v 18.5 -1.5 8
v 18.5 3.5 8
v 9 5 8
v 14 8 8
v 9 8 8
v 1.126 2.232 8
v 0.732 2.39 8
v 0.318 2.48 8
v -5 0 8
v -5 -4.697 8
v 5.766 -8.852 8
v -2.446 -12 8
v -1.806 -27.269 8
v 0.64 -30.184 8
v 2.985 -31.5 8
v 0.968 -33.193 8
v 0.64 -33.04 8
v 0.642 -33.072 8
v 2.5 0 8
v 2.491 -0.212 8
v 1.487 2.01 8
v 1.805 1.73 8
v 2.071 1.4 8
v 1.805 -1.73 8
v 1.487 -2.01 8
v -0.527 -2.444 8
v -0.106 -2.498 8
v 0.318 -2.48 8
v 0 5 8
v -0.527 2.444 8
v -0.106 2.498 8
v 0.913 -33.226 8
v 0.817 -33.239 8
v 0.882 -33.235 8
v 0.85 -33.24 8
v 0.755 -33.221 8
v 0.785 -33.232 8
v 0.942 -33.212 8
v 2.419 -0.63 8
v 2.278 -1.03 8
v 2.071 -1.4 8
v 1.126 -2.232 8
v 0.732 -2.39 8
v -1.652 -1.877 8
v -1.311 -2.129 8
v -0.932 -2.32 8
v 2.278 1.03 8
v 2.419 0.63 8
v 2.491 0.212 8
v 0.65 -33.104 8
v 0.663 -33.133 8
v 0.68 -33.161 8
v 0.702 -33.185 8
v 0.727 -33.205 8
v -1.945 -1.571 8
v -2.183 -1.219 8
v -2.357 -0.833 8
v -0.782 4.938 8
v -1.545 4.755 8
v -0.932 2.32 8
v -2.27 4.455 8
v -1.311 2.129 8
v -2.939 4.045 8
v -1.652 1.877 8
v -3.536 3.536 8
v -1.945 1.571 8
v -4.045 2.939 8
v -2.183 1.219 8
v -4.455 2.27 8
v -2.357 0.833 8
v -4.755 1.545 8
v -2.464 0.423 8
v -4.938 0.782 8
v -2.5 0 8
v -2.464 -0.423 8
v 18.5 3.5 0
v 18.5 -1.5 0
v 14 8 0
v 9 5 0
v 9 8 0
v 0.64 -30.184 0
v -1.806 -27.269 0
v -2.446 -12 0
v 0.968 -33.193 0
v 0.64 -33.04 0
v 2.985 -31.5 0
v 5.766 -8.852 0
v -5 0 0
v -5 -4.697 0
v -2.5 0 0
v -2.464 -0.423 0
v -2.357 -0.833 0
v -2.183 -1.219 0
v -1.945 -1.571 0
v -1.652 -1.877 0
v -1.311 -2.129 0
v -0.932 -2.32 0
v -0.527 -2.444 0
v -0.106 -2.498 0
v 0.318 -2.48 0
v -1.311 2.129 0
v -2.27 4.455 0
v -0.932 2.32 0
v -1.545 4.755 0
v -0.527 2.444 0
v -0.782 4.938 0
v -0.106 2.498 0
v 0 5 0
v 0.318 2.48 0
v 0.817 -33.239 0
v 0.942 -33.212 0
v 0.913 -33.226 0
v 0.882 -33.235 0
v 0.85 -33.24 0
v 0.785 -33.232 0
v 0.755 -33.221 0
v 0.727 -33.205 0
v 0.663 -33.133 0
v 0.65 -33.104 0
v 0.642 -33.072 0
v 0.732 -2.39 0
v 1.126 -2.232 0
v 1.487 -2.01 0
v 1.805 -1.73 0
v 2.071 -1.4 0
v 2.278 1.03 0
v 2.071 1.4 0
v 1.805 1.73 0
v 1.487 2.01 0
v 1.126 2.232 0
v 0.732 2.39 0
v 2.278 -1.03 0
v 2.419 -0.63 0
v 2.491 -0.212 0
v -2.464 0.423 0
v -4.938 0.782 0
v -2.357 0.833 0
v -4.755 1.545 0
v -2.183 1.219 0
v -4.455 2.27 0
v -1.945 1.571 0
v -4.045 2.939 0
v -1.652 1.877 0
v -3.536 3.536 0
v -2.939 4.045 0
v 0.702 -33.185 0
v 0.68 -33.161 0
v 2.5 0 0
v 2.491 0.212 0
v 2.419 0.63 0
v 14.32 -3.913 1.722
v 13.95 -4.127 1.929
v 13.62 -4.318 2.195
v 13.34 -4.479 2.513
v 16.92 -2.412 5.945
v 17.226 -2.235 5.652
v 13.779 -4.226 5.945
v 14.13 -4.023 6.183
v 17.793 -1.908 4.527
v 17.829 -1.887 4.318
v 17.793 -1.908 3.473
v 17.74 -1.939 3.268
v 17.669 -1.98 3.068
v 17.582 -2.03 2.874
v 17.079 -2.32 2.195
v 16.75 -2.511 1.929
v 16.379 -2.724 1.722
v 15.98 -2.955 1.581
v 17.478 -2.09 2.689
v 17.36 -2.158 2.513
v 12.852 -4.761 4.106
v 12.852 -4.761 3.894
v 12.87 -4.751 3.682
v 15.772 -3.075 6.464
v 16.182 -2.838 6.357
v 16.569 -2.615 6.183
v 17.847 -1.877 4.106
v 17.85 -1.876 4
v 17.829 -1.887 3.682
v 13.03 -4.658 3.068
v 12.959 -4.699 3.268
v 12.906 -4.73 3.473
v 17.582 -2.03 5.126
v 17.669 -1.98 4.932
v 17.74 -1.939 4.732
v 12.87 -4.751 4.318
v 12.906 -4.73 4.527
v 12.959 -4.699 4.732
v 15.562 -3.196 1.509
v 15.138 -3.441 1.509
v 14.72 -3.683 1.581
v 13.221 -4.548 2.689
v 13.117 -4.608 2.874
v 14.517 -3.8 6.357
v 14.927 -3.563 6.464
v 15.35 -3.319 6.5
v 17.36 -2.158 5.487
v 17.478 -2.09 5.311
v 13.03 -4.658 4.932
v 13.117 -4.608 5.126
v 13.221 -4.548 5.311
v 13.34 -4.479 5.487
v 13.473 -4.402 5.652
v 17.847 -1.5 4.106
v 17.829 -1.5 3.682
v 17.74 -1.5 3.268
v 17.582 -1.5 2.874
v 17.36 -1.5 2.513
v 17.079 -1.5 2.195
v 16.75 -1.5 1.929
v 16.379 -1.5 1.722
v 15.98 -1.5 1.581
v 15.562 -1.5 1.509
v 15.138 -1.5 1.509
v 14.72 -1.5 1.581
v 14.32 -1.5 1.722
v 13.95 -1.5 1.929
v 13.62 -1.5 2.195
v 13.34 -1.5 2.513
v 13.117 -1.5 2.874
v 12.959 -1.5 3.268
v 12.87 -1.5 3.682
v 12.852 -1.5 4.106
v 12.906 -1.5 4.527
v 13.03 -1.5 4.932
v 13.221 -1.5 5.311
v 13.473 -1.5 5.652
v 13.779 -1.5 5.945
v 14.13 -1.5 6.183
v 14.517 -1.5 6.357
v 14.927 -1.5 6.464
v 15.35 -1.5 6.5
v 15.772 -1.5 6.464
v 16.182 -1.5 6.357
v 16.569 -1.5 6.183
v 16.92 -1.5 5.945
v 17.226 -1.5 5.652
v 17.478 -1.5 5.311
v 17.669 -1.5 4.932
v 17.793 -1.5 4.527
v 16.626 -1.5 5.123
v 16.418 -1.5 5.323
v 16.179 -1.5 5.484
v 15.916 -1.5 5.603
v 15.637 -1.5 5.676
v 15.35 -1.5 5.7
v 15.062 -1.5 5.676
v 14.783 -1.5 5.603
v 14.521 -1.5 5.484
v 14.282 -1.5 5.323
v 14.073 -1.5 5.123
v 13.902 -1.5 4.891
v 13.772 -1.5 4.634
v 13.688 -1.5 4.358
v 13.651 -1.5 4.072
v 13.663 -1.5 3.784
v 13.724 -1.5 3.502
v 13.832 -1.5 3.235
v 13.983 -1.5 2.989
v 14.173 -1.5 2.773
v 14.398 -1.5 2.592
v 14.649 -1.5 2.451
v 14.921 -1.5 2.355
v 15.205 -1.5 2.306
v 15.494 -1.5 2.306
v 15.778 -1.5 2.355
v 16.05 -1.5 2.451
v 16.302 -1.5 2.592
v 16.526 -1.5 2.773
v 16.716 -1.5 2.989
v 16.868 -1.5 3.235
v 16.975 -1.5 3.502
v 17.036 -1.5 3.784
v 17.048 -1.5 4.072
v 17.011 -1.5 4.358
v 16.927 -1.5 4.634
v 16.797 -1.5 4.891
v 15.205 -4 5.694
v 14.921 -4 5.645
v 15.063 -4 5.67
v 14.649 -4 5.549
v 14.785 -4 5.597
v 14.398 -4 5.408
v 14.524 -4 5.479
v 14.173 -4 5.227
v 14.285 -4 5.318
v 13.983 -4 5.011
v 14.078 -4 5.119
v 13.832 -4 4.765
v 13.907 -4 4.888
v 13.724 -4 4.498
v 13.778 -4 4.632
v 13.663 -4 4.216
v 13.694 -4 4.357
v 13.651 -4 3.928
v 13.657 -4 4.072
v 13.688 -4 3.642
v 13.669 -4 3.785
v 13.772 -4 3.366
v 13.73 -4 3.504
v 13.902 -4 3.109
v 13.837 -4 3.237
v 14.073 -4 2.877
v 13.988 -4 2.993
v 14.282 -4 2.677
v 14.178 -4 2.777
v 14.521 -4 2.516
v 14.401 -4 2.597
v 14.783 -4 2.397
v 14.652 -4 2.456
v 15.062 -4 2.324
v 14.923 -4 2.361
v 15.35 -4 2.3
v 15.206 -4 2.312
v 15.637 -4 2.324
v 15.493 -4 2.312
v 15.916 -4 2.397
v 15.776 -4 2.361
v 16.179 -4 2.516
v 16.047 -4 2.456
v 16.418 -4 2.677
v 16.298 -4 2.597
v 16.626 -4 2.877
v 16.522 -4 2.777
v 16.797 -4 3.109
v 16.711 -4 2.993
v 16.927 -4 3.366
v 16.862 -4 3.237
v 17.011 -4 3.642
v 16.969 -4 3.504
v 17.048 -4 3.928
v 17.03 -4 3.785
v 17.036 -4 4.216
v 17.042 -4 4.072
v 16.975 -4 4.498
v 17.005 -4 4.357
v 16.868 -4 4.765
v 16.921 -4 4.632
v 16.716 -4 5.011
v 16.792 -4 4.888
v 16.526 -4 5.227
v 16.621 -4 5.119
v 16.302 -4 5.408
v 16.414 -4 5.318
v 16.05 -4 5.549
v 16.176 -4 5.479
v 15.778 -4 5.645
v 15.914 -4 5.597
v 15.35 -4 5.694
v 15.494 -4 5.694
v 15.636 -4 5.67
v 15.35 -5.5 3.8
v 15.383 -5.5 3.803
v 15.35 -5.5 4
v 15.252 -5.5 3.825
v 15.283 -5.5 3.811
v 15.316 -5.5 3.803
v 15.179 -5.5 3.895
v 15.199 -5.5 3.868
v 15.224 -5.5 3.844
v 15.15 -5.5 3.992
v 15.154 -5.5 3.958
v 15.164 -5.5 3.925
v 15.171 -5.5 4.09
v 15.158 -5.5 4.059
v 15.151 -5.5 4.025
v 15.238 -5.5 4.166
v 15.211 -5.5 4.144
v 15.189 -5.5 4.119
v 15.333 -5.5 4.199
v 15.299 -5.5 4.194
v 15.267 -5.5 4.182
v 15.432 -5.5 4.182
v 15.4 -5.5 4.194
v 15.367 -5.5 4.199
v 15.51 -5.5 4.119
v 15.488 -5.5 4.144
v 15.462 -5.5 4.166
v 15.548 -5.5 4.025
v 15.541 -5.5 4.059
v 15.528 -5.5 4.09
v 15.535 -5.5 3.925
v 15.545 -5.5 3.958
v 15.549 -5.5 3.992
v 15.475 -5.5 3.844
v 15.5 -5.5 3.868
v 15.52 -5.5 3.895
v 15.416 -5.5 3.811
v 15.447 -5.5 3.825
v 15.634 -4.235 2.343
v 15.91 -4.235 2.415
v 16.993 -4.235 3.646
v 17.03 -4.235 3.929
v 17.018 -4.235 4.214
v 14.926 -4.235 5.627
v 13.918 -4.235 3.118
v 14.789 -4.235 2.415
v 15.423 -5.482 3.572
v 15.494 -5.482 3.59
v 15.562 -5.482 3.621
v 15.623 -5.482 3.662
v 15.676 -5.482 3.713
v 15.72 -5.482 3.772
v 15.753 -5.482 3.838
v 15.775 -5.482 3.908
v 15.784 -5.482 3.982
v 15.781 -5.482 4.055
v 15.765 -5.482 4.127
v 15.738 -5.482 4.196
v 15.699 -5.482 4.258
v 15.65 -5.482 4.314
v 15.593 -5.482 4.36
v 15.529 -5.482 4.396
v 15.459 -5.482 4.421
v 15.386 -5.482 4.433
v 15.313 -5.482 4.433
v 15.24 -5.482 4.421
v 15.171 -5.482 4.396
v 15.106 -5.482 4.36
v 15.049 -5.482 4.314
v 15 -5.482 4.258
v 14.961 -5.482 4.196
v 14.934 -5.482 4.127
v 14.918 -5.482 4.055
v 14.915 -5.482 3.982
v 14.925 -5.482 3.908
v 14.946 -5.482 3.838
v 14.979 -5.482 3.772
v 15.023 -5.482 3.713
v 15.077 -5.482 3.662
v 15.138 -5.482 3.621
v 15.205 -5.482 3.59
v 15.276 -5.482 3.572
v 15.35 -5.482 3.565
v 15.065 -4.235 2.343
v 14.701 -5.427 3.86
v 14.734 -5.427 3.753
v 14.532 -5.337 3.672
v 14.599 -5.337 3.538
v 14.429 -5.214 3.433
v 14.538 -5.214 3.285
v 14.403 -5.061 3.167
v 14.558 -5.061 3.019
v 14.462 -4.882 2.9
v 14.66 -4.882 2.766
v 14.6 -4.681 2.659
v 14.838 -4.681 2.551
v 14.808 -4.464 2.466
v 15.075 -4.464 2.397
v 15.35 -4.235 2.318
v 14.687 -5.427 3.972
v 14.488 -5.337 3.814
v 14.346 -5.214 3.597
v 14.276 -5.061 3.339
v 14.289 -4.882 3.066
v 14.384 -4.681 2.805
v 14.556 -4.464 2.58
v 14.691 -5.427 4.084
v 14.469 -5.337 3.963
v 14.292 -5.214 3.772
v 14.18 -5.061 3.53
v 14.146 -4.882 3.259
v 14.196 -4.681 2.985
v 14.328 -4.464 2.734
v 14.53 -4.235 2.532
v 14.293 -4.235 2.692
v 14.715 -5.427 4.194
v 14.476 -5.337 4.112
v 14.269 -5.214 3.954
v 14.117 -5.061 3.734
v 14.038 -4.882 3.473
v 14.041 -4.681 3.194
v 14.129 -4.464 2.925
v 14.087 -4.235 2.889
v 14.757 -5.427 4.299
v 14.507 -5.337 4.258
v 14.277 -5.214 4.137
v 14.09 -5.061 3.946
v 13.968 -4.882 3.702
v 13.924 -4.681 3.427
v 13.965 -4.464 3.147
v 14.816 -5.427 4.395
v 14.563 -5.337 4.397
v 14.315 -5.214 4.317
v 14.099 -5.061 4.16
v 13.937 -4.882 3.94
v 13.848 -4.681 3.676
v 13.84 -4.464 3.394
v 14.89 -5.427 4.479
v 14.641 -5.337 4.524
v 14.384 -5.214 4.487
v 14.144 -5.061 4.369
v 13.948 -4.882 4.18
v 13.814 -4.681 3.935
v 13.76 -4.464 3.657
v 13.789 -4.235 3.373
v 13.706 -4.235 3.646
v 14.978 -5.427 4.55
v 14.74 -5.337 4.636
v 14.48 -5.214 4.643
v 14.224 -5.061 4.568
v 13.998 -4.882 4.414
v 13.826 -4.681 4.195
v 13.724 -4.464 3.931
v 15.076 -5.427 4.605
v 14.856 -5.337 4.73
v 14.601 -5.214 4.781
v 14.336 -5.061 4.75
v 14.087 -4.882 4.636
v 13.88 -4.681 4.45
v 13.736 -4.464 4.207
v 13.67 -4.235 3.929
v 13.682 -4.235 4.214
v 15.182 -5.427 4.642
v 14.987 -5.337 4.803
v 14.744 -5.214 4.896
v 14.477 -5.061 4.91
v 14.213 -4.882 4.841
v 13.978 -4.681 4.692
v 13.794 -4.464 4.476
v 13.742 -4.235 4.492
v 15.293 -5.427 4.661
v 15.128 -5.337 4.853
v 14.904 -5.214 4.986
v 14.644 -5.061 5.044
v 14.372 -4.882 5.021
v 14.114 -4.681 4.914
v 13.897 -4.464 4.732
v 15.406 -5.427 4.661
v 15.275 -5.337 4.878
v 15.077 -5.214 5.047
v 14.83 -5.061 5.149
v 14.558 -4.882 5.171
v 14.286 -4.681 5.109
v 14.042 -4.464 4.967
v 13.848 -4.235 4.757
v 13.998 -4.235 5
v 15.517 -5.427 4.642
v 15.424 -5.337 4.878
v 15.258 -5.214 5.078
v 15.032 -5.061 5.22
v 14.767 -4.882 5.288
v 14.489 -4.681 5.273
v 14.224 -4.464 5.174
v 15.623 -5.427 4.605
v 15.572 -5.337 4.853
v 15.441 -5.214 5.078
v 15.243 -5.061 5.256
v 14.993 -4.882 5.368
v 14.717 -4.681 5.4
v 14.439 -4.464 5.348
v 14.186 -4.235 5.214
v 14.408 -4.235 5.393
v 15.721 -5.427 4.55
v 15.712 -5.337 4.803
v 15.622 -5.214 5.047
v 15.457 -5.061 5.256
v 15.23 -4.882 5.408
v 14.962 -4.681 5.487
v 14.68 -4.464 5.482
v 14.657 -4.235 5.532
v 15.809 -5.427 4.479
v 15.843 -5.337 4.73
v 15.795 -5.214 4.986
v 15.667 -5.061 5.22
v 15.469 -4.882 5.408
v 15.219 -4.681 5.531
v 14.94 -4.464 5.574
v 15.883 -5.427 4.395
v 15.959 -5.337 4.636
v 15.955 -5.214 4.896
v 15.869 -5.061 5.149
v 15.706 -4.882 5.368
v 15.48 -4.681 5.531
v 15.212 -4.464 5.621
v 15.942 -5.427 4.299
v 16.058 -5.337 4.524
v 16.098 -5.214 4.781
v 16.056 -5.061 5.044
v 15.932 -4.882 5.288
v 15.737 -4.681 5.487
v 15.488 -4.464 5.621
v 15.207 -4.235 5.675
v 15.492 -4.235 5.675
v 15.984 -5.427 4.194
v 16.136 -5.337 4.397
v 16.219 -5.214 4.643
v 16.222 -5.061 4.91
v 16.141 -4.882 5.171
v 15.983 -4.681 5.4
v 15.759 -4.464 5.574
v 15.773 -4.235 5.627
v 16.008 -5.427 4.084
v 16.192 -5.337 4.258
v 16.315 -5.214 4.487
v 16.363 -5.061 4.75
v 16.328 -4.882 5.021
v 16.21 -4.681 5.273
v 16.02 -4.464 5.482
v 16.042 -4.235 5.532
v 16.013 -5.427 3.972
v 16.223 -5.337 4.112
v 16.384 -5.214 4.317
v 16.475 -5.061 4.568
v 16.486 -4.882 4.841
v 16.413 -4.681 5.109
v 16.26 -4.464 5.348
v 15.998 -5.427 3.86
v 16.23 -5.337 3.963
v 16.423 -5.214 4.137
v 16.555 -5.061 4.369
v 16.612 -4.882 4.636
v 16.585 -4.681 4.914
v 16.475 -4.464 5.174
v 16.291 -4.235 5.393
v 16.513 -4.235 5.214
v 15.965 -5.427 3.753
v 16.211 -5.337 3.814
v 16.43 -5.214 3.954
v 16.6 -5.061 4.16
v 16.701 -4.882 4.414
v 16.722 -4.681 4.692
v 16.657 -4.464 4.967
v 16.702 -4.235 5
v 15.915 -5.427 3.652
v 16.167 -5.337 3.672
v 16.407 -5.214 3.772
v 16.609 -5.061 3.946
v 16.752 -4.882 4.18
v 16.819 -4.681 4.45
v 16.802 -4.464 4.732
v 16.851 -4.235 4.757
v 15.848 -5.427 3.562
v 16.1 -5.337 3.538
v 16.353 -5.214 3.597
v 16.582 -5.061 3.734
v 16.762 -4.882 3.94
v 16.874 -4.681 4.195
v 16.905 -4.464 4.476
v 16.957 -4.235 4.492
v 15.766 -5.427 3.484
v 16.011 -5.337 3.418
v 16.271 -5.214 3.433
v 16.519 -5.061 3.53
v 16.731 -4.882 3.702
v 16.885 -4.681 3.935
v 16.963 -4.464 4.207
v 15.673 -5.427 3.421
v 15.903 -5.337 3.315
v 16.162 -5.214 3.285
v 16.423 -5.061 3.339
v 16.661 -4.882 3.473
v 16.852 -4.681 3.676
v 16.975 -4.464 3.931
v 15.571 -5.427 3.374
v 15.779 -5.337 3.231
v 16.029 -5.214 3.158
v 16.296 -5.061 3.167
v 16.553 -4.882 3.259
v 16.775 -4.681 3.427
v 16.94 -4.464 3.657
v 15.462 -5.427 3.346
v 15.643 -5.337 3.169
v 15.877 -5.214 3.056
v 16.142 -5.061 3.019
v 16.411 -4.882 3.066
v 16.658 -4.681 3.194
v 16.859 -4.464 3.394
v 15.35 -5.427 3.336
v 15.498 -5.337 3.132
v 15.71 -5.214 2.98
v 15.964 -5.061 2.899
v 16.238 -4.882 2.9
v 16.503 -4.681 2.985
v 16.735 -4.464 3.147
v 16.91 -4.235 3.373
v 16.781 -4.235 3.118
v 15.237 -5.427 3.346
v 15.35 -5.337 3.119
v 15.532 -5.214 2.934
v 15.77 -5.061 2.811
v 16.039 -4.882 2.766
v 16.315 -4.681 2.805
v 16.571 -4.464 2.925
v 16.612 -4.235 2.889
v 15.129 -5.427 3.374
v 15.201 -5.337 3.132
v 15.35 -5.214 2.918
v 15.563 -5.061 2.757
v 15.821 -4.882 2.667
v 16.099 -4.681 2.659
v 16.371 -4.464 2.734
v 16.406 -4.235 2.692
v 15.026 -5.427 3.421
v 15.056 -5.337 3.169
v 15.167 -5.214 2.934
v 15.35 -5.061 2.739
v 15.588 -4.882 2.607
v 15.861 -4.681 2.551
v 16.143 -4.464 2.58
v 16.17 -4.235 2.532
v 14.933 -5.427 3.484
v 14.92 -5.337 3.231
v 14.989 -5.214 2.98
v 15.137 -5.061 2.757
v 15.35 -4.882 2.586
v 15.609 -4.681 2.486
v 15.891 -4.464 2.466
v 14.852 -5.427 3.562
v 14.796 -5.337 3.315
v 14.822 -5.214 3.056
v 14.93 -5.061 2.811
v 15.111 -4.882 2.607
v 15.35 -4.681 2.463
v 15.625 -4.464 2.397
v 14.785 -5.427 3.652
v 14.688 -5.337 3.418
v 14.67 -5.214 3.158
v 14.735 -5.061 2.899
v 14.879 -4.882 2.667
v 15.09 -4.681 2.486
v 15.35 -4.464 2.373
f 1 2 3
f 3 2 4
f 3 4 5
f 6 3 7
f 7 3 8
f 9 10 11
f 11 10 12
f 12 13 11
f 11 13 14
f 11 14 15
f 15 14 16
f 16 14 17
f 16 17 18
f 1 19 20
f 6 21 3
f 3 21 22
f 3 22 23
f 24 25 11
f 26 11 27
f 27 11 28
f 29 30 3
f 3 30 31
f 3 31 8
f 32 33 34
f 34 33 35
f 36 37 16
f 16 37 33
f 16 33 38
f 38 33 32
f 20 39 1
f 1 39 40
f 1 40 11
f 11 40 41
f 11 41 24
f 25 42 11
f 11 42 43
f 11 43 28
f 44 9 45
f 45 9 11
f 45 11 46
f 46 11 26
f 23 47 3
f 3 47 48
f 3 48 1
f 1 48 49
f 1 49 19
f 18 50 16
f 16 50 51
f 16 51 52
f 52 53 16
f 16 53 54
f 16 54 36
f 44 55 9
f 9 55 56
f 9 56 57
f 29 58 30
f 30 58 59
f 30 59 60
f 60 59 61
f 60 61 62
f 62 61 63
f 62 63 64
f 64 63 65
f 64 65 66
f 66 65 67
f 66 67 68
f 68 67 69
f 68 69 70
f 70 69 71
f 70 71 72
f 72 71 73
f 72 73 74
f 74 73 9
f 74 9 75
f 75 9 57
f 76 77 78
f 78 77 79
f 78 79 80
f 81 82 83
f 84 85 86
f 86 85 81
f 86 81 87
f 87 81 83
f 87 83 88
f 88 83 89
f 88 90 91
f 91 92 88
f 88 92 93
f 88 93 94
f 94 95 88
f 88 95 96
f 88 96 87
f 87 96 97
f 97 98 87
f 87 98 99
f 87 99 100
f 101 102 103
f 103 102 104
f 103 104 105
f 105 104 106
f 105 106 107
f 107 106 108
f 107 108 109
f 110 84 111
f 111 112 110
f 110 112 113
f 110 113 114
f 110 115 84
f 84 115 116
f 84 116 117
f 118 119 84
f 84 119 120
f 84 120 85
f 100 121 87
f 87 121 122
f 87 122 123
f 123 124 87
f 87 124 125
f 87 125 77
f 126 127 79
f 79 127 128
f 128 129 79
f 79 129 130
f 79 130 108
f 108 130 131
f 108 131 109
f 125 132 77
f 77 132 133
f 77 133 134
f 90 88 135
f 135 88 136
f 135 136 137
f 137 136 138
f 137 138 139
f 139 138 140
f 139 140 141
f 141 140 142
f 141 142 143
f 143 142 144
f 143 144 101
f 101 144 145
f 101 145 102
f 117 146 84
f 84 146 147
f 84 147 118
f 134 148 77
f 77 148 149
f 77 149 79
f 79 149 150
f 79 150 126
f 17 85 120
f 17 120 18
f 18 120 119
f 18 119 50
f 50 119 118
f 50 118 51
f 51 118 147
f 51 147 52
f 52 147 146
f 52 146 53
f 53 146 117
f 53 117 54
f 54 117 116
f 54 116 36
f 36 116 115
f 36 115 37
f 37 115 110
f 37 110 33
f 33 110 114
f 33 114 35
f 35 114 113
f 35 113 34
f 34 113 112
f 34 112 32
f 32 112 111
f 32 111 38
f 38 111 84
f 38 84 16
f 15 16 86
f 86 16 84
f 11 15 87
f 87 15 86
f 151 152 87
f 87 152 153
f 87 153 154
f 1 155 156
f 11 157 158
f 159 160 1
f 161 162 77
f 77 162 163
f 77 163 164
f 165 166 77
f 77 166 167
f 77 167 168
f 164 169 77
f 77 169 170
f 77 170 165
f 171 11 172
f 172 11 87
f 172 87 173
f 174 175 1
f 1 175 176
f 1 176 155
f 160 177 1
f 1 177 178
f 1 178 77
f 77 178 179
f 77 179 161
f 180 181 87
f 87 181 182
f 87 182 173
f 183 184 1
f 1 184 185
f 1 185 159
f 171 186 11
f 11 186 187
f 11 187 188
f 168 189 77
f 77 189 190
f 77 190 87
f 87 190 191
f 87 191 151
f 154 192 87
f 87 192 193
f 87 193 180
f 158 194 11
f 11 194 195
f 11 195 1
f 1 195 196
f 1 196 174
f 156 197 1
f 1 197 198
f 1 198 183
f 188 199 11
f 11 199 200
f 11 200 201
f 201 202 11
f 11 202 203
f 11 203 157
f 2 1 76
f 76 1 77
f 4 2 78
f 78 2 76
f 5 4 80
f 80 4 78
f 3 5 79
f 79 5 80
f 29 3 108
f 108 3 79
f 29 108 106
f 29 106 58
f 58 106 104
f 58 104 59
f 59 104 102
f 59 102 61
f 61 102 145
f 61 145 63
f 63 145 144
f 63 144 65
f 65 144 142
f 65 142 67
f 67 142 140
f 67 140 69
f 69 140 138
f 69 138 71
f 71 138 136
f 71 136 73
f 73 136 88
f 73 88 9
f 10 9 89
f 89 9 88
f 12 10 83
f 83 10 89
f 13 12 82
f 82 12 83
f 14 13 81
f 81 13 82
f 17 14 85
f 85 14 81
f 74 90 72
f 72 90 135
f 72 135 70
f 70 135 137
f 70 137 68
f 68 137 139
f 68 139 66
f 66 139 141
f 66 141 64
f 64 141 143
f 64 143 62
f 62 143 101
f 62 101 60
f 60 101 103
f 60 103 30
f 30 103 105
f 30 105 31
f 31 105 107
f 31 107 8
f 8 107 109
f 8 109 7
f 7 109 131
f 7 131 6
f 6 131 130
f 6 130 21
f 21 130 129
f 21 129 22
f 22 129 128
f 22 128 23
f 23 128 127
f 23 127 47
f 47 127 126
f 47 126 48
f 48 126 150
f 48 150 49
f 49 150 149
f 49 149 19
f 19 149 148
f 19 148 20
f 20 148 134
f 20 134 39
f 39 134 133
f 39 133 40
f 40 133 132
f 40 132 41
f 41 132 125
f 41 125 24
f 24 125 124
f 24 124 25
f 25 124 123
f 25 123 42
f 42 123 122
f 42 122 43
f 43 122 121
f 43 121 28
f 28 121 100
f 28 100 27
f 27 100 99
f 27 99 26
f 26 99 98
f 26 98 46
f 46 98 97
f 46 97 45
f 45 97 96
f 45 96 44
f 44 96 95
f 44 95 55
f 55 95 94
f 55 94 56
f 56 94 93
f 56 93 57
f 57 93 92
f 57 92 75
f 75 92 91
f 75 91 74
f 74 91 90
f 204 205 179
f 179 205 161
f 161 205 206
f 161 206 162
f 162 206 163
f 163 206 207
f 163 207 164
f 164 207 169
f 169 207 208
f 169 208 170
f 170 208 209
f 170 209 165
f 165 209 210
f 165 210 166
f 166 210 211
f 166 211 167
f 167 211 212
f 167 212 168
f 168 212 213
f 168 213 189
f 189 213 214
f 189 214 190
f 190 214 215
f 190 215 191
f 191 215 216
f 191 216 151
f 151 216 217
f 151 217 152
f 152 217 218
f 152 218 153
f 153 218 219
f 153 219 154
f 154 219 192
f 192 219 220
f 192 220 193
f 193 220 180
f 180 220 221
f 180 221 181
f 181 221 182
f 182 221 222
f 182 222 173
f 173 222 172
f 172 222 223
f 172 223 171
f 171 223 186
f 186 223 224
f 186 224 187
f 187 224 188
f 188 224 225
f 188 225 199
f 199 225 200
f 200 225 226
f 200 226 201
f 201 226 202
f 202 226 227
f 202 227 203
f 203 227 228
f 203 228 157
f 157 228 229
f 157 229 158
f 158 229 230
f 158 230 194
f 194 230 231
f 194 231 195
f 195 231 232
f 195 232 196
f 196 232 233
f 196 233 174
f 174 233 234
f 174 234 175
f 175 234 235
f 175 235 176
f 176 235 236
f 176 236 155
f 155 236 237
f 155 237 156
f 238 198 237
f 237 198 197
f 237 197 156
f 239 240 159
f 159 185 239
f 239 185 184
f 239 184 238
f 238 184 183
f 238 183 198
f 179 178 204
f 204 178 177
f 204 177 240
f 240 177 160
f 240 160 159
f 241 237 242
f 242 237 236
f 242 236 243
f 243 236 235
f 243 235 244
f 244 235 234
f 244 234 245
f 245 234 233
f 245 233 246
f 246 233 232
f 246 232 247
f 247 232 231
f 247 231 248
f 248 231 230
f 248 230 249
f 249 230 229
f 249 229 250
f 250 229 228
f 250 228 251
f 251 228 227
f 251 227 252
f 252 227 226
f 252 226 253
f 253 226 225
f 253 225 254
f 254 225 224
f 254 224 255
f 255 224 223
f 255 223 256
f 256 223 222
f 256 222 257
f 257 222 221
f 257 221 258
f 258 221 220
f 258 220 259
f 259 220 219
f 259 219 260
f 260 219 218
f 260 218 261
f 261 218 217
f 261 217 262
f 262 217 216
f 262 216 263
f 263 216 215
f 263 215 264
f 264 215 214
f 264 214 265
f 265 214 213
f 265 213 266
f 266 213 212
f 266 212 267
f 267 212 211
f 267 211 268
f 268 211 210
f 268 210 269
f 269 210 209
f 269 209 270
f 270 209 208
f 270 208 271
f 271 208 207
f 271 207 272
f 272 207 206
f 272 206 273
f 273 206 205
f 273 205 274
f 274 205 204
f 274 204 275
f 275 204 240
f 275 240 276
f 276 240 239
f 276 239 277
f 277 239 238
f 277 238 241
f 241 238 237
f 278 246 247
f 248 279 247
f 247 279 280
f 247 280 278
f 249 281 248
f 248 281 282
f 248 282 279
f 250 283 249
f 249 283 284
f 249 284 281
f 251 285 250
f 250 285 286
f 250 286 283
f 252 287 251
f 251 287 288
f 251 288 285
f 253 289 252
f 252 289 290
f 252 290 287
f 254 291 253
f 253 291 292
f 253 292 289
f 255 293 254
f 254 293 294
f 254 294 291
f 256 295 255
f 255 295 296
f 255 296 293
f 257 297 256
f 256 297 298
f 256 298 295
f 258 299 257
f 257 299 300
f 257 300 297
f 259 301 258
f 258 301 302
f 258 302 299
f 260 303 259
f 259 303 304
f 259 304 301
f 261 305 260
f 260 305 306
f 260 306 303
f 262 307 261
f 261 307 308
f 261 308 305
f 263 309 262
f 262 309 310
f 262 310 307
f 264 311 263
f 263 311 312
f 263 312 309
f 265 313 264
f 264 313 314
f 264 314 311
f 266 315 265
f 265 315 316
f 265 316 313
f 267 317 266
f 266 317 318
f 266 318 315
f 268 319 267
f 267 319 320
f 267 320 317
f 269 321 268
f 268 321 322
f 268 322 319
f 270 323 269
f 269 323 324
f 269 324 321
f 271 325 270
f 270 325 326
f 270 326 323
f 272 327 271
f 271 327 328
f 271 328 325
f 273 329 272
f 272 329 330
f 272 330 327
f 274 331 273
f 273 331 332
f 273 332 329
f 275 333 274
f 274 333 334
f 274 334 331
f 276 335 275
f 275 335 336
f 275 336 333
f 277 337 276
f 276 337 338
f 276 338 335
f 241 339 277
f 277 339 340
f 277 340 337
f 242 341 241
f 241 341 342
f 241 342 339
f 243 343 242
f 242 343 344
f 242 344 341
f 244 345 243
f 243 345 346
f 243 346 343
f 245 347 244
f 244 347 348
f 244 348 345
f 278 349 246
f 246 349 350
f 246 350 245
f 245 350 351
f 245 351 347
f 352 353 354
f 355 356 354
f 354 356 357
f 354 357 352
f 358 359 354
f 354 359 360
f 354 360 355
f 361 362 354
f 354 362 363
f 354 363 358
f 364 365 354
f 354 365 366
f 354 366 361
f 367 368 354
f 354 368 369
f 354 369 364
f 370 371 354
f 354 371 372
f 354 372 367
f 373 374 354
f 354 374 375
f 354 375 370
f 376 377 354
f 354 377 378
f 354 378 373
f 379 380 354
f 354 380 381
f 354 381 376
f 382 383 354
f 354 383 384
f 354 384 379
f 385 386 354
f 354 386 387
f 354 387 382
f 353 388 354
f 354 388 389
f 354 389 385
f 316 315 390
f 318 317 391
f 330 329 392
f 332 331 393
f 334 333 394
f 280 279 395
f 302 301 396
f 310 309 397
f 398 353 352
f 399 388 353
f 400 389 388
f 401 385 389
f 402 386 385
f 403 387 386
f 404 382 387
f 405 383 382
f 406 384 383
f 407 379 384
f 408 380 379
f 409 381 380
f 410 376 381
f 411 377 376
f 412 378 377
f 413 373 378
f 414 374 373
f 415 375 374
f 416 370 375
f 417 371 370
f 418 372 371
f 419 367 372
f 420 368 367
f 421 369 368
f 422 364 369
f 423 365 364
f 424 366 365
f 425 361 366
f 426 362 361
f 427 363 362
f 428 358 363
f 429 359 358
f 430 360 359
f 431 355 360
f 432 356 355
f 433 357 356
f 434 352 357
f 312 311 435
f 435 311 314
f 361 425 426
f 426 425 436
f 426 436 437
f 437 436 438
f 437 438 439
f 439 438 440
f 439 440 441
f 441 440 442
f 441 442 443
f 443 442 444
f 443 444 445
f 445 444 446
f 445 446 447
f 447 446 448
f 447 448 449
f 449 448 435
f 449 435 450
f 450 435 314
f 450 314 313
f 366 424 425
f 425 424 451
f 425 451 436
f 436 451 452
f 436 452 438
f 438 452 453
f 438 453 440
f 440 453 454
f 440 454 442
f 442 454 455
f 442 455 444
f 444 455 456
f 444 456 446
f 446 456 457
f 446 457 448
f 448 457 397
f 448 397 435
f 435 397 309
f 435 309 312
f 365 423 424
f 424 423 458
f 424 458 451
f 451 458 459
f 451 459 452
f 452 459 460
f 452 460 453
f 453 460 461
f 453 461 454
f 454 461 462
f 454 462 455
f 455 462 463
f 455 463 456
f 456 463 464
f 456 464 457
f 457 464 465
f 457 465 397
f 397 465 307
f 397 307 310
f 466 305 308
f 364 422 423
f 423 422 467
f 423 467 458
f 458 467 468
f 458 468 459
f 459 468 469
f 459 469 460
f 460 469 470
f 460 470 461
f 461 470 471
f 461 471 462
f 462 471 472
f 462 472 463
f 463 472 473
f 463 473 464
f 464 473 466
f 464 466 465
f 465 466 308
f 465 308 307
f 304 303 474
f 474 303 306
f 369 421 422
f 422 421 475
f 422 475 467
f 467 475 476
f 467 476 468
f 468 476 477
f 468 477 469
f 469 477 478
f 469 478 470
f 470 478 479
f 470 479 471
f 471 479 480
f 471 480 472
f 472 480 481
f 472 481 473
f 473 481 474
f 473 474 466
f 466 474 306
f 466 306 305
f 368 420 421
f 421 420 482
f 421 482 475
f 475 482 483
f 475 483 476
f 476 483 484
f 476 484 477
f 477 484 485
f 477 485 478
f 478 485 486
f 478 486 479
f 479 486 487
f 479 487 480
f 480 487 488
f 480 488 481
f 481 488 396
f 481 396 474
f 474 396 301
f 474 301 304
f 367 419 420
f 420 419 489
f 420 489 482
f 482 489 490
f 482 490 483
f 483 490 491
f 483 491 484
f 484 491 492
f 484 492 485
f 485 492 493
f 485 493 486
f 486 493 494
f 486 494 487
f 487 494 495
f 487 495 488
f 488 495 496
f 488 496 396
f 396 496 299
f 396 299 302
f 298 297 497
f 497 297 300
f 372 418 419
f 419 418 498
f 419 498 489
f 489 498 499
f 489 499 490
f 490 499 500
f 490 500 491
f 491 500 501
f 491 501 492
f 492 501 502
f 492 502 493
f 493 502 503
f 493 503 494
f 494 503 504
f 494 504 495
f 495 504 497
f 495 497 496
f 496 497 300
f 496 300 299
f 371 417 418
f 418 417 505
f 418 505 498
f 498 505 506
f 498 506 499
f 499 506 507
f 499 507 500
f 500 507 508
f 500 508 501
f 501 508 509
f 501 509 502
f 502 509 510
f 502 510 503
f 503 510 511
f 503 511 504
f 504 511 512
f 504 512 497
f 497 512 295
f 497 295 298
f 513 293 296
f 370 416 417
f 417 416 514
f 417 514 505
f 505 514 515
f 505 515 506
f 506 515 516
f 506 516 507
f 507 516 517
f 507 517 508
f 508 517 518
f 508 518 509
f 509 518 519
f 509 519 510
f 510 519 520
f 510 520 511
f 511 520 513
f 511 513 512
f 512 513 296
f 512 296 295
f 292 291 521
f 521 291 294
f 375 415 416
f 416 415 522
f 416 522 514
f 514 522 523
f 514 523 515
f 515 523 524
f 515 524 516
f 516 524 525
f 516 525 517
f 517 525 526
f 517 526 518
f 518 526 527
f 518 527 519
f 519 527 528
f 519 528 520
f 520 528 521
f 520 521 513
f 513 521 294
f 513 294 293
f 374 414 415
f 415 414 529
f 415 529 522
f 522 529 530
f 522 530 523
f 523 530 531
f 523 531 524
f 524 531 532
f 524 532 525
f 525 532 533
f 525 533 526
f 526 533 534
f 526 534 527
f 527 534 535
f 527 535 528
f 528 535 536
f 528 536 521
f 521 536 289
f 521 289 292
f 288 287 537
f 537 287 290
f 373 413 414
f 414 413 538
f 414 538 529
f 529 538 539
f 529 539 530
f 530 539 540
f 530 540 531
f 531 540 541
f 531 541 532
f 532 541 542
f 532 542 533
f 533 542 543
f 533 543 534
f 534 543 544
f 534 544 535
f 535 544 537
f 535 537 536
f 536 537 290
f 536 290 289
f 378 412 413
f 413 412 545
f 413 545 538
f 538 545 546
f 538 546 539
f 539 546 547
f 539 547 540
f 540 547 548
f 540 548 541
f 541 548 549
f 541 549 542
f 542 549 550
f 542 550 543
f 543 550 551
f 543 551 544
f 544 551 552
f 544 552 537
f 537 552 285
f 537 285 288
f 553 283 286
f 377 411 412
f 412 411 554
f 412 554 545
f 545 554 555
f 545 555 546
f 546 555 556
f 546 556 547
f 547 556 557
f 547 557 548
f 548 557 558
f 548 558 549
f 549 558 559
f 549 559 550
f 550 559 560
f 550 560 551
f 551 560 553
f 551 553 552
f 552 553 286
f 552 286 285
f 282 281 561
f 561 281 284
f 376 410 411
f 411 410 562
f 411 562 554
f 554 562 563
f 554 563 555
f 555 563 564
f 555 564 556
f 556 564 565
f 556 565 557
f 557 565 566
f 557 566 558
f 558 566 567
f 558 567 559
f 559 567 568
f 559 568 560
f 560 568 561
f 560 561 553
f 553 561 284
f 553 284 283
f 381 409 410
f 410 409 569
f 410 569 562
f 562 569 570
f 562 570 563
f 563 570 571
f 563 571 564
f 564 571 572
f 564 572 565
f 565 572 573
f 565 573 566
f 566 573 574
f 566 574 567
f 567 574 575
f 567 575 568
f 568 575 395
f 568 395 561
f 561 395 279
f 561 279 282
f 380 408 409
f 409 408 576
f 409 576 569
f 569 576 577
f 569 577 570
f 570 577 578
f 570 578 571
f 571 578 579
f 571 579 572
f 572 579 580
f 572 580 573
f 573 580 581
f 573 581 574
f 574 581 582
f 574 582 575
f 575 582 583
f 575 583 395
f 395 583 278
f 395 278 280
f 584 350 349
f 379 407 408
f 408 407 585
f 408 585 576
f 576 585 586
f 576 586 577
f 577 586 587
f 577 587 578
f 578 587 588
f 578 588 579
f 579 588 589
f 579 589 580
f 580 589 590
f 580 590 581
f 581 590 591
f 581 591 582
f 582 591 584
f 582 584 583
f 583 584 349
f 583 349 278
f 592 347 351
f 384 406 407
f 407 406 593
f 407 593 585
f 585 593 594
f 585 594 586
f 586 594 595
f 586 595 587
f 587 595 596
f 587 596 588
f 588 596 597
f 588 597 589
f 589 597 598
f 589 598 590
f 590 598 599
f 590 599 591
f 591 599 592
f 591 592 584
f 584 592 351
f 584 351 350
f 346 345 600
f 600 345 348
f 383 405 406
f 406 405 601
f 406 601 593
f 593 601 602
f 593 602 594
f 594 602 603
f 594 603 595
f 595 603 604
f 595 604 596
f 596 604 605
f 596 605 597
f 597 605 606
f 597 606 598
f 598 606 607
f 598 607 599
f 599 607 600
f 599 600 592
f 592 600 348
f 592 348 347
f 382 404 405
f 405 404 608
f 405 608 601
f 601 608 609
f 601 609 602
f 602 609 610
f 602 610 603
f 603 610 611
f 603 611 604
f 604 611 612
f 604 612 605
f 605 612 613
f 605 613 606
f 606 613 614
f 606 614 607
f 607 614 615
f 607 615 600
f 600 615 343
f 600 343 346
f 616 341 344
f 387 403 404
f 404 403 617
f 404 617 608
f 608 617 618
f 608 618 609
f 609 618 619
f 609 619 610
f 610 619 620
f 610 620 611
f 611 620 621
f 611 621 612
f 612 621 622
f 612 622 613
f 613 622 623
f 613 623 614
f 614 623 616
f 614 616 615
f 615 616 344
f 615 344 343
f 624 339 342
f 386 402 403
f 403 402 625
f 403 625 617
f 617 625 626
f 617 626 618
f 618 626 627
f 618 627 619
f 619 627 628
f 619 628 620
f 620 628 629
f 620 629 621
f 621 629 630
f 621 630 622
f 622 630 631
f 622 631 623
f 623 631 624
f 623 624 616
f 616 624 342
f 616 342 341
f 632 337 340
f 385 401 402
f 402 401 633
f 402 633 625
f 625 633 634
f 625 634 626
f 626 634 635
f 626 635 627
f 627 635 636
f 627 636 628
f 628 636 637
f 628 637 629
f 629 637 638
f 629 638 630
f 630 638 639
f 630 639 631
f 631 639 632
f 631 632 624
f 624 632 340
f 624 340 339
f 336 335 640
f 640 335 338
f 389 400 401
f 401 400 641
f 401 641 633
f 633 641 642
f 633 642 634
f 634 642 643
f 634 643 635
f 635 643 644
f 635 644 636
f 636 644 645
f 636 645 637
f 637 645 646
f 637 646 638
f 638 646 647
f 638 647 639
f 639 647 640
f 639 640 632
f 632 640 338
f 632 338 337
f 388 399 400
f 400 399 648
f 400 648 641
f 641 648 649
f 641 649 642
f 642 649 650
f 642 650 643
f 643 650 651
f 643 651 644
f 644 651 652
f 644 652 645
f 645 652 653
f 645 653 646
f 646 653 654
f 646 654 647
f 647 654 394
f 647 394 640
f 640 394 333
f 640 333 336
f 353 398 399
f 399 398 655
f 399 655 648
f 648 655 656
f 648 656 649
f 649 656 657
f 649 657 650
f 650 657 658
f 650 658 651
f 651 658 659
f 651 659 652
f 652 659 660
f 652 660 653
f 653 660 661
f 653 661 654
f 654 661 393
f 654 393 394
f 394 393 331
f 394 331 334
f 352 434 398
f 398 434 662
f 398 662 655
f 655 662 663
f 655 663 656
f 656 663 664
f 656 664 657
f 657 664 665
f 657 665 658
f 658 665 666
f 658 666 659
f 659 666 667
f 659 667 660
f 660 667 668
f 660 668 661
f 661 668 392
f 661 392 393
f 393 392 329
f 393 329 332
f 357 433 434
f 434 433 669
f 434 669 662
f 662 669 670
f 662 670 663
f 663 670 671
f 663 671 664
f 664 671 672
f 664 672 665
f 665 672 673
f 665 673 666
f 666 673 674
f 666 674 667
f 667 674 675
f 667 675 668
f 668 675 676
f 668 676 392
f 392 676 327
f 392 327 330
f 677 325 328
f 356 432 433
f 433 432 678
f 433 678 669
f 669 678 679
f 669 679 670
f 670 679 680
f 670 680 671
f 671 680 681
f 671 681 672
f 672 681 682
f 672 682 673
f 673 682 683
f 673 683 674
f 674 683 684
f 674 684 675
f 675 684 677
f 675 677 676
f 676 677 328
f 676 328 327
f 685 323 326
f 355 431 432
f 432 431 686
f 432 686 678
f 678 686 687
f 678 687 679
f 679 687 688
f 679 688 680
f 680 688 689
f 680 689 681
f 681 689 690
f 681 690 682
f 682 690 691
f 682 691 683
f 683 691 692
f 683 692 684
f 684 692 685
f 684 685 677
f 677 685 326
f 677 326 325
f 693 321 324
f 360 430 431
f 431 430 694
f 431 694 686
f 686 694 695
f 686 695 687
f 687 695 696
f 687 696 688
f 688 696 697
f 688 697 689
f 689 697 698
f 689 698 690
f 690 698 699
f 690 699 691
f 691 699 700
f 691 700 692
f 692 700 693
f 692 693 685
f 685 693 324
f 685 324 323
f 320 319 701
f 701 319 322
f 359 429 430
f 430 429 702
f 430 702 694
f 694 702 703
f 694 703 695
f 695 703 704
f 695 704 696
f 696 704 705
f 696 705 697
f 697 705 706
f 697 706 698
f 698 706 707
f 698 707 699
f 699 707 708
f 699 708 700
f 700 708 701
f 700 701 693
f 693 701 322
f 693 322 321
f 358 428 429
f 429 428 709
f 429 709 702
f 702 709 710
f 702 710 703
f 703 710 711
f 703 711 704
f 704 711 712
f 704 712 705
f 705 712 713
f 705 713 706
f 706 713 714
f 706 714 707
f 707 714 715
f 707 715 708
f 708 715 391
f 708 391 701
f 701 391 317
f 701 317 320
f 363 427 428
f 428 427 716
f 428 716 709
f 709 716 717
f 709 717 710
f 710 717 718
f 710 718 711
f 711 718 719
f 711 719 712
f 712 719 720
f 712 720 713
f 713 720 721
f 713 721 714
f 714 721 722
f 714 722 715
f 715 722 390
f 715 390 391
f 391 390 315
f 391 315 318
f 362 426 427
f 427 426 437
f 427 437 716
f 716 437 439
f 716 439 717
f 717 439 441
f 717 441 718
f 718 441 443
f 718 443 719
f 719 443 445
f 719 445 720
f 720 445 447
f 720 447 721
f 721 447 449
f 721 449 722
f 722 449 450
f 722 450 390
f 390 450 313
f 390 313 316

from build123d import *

# Parameters (mm, degrees)
SKETCH_1_R          = 2.5
EXTRUDE_1_DEPTH     = 8
CUT_EXTRUDE_1_REACH = 39.599
SKETCH_3_R          = 2.5
SKETCH_4_R          = 1.7
EXTRUDE_2_DEPTH     = 4
FILLET_1_R          = 1.5


with BuildPart() as part:
    # 스케치1 → 보스-돌출1 (new body)
    with BuildSketch(Plane.XY):
        with BuildLine():
            Line((0, 5), (9, 5))
            Line((9, 5), (9, 8))
            Line((9, 8), (14, 8))
            Line((14, 8), (18.5, 3.5))
            Line((18.5, 3.5), (18.5, -1.5))
            Line((18.5, -1.5), (5.766282201, -8.851815399))
            Line((5.766282201, -8.851815399), (2.9854348, -31.5))
            Line((2.9854348, -31.5), (0.968172025, -33.193012598))
            ThreePointArc((0.968172025, -33.193012598), (0.755084879, -33.221081572), (0.63959988, -33.039815981))
            Line((0.63959988, -33.039815981), (0.63959988, -30.183726788))
            Line((0.63959988, -30.183726788), (-1.805734914, -27.269490262))
            Line((-1.805734914, -27.269490262), (-2.445573418, -12))
            Line((-2.445573418, -12), (-5, -4.696574134))
            Line((-5, -4.696574134), (-5, 0))
            ThreePointArc((-5, 0), (-3.535533906, 3.535533906), (0, 5))
        make_face()
        Circle(SKETCH_1_R, mode=Mode.SUBTRACT)
    extrude(amount=EXTRUDE_1_DEPTH)

    # 컷-돌출1: up to this plane
    cut_extrude_1_end = Plane(origin=(18.5, -1.5, 8), z_dir=(-0.5000000000000013, 0.8660254037844378, 0))
    # 스케치3 → 컷-돌출1 (cut, up to the surface)
    with BuildSketch(Plane(origin=(0, -1.5, 0), x_dir=(1, 0, 0), z_dir=(0, 1, 0)), mode=Mode.PRIVATE) as cut_extrude_1_sk1:
        with Locations(Location((15.349608759, -4, 0), (0, 0, 270))):
            Circle(SKETCH_3_R)
    cut_extrude_1_tool1 = split(extrude(cut_extrude_1_sk1.sketch, amount=-CUT_EXTRUDE_1_REACH, mode=Mode.PRIVATE), bisect_by=cut_extrude_1_end, keep=Keep.BOTH, mode=Mode.PRIVATE)
    add(cut_extrude_1_tool1.solids().sort_by_distance((15.349609, -1.5, 4))[0], mode=Mode.SUBTRACT)

    # 스케치4 → 보스-돌출2 (add)
    with BuildSketch(Plane.XZ.offset(1.5)):
        with Locations(Location((15.349608759, 4, 0), (0, 0, 90))):
            Circle(SKETCH_4_R)
    extrude(amount=EXTRUDE_2_DEPTH)

    # 필렛1
    fillet_1_edges = [part.edges().sort_by_distance(p)[0] for p in [
        (15.349608759, -5.5, 2.3),
    ]]
    fillet(fillet_1_edges, radius=FILLET_1_R)


solid = part.part
